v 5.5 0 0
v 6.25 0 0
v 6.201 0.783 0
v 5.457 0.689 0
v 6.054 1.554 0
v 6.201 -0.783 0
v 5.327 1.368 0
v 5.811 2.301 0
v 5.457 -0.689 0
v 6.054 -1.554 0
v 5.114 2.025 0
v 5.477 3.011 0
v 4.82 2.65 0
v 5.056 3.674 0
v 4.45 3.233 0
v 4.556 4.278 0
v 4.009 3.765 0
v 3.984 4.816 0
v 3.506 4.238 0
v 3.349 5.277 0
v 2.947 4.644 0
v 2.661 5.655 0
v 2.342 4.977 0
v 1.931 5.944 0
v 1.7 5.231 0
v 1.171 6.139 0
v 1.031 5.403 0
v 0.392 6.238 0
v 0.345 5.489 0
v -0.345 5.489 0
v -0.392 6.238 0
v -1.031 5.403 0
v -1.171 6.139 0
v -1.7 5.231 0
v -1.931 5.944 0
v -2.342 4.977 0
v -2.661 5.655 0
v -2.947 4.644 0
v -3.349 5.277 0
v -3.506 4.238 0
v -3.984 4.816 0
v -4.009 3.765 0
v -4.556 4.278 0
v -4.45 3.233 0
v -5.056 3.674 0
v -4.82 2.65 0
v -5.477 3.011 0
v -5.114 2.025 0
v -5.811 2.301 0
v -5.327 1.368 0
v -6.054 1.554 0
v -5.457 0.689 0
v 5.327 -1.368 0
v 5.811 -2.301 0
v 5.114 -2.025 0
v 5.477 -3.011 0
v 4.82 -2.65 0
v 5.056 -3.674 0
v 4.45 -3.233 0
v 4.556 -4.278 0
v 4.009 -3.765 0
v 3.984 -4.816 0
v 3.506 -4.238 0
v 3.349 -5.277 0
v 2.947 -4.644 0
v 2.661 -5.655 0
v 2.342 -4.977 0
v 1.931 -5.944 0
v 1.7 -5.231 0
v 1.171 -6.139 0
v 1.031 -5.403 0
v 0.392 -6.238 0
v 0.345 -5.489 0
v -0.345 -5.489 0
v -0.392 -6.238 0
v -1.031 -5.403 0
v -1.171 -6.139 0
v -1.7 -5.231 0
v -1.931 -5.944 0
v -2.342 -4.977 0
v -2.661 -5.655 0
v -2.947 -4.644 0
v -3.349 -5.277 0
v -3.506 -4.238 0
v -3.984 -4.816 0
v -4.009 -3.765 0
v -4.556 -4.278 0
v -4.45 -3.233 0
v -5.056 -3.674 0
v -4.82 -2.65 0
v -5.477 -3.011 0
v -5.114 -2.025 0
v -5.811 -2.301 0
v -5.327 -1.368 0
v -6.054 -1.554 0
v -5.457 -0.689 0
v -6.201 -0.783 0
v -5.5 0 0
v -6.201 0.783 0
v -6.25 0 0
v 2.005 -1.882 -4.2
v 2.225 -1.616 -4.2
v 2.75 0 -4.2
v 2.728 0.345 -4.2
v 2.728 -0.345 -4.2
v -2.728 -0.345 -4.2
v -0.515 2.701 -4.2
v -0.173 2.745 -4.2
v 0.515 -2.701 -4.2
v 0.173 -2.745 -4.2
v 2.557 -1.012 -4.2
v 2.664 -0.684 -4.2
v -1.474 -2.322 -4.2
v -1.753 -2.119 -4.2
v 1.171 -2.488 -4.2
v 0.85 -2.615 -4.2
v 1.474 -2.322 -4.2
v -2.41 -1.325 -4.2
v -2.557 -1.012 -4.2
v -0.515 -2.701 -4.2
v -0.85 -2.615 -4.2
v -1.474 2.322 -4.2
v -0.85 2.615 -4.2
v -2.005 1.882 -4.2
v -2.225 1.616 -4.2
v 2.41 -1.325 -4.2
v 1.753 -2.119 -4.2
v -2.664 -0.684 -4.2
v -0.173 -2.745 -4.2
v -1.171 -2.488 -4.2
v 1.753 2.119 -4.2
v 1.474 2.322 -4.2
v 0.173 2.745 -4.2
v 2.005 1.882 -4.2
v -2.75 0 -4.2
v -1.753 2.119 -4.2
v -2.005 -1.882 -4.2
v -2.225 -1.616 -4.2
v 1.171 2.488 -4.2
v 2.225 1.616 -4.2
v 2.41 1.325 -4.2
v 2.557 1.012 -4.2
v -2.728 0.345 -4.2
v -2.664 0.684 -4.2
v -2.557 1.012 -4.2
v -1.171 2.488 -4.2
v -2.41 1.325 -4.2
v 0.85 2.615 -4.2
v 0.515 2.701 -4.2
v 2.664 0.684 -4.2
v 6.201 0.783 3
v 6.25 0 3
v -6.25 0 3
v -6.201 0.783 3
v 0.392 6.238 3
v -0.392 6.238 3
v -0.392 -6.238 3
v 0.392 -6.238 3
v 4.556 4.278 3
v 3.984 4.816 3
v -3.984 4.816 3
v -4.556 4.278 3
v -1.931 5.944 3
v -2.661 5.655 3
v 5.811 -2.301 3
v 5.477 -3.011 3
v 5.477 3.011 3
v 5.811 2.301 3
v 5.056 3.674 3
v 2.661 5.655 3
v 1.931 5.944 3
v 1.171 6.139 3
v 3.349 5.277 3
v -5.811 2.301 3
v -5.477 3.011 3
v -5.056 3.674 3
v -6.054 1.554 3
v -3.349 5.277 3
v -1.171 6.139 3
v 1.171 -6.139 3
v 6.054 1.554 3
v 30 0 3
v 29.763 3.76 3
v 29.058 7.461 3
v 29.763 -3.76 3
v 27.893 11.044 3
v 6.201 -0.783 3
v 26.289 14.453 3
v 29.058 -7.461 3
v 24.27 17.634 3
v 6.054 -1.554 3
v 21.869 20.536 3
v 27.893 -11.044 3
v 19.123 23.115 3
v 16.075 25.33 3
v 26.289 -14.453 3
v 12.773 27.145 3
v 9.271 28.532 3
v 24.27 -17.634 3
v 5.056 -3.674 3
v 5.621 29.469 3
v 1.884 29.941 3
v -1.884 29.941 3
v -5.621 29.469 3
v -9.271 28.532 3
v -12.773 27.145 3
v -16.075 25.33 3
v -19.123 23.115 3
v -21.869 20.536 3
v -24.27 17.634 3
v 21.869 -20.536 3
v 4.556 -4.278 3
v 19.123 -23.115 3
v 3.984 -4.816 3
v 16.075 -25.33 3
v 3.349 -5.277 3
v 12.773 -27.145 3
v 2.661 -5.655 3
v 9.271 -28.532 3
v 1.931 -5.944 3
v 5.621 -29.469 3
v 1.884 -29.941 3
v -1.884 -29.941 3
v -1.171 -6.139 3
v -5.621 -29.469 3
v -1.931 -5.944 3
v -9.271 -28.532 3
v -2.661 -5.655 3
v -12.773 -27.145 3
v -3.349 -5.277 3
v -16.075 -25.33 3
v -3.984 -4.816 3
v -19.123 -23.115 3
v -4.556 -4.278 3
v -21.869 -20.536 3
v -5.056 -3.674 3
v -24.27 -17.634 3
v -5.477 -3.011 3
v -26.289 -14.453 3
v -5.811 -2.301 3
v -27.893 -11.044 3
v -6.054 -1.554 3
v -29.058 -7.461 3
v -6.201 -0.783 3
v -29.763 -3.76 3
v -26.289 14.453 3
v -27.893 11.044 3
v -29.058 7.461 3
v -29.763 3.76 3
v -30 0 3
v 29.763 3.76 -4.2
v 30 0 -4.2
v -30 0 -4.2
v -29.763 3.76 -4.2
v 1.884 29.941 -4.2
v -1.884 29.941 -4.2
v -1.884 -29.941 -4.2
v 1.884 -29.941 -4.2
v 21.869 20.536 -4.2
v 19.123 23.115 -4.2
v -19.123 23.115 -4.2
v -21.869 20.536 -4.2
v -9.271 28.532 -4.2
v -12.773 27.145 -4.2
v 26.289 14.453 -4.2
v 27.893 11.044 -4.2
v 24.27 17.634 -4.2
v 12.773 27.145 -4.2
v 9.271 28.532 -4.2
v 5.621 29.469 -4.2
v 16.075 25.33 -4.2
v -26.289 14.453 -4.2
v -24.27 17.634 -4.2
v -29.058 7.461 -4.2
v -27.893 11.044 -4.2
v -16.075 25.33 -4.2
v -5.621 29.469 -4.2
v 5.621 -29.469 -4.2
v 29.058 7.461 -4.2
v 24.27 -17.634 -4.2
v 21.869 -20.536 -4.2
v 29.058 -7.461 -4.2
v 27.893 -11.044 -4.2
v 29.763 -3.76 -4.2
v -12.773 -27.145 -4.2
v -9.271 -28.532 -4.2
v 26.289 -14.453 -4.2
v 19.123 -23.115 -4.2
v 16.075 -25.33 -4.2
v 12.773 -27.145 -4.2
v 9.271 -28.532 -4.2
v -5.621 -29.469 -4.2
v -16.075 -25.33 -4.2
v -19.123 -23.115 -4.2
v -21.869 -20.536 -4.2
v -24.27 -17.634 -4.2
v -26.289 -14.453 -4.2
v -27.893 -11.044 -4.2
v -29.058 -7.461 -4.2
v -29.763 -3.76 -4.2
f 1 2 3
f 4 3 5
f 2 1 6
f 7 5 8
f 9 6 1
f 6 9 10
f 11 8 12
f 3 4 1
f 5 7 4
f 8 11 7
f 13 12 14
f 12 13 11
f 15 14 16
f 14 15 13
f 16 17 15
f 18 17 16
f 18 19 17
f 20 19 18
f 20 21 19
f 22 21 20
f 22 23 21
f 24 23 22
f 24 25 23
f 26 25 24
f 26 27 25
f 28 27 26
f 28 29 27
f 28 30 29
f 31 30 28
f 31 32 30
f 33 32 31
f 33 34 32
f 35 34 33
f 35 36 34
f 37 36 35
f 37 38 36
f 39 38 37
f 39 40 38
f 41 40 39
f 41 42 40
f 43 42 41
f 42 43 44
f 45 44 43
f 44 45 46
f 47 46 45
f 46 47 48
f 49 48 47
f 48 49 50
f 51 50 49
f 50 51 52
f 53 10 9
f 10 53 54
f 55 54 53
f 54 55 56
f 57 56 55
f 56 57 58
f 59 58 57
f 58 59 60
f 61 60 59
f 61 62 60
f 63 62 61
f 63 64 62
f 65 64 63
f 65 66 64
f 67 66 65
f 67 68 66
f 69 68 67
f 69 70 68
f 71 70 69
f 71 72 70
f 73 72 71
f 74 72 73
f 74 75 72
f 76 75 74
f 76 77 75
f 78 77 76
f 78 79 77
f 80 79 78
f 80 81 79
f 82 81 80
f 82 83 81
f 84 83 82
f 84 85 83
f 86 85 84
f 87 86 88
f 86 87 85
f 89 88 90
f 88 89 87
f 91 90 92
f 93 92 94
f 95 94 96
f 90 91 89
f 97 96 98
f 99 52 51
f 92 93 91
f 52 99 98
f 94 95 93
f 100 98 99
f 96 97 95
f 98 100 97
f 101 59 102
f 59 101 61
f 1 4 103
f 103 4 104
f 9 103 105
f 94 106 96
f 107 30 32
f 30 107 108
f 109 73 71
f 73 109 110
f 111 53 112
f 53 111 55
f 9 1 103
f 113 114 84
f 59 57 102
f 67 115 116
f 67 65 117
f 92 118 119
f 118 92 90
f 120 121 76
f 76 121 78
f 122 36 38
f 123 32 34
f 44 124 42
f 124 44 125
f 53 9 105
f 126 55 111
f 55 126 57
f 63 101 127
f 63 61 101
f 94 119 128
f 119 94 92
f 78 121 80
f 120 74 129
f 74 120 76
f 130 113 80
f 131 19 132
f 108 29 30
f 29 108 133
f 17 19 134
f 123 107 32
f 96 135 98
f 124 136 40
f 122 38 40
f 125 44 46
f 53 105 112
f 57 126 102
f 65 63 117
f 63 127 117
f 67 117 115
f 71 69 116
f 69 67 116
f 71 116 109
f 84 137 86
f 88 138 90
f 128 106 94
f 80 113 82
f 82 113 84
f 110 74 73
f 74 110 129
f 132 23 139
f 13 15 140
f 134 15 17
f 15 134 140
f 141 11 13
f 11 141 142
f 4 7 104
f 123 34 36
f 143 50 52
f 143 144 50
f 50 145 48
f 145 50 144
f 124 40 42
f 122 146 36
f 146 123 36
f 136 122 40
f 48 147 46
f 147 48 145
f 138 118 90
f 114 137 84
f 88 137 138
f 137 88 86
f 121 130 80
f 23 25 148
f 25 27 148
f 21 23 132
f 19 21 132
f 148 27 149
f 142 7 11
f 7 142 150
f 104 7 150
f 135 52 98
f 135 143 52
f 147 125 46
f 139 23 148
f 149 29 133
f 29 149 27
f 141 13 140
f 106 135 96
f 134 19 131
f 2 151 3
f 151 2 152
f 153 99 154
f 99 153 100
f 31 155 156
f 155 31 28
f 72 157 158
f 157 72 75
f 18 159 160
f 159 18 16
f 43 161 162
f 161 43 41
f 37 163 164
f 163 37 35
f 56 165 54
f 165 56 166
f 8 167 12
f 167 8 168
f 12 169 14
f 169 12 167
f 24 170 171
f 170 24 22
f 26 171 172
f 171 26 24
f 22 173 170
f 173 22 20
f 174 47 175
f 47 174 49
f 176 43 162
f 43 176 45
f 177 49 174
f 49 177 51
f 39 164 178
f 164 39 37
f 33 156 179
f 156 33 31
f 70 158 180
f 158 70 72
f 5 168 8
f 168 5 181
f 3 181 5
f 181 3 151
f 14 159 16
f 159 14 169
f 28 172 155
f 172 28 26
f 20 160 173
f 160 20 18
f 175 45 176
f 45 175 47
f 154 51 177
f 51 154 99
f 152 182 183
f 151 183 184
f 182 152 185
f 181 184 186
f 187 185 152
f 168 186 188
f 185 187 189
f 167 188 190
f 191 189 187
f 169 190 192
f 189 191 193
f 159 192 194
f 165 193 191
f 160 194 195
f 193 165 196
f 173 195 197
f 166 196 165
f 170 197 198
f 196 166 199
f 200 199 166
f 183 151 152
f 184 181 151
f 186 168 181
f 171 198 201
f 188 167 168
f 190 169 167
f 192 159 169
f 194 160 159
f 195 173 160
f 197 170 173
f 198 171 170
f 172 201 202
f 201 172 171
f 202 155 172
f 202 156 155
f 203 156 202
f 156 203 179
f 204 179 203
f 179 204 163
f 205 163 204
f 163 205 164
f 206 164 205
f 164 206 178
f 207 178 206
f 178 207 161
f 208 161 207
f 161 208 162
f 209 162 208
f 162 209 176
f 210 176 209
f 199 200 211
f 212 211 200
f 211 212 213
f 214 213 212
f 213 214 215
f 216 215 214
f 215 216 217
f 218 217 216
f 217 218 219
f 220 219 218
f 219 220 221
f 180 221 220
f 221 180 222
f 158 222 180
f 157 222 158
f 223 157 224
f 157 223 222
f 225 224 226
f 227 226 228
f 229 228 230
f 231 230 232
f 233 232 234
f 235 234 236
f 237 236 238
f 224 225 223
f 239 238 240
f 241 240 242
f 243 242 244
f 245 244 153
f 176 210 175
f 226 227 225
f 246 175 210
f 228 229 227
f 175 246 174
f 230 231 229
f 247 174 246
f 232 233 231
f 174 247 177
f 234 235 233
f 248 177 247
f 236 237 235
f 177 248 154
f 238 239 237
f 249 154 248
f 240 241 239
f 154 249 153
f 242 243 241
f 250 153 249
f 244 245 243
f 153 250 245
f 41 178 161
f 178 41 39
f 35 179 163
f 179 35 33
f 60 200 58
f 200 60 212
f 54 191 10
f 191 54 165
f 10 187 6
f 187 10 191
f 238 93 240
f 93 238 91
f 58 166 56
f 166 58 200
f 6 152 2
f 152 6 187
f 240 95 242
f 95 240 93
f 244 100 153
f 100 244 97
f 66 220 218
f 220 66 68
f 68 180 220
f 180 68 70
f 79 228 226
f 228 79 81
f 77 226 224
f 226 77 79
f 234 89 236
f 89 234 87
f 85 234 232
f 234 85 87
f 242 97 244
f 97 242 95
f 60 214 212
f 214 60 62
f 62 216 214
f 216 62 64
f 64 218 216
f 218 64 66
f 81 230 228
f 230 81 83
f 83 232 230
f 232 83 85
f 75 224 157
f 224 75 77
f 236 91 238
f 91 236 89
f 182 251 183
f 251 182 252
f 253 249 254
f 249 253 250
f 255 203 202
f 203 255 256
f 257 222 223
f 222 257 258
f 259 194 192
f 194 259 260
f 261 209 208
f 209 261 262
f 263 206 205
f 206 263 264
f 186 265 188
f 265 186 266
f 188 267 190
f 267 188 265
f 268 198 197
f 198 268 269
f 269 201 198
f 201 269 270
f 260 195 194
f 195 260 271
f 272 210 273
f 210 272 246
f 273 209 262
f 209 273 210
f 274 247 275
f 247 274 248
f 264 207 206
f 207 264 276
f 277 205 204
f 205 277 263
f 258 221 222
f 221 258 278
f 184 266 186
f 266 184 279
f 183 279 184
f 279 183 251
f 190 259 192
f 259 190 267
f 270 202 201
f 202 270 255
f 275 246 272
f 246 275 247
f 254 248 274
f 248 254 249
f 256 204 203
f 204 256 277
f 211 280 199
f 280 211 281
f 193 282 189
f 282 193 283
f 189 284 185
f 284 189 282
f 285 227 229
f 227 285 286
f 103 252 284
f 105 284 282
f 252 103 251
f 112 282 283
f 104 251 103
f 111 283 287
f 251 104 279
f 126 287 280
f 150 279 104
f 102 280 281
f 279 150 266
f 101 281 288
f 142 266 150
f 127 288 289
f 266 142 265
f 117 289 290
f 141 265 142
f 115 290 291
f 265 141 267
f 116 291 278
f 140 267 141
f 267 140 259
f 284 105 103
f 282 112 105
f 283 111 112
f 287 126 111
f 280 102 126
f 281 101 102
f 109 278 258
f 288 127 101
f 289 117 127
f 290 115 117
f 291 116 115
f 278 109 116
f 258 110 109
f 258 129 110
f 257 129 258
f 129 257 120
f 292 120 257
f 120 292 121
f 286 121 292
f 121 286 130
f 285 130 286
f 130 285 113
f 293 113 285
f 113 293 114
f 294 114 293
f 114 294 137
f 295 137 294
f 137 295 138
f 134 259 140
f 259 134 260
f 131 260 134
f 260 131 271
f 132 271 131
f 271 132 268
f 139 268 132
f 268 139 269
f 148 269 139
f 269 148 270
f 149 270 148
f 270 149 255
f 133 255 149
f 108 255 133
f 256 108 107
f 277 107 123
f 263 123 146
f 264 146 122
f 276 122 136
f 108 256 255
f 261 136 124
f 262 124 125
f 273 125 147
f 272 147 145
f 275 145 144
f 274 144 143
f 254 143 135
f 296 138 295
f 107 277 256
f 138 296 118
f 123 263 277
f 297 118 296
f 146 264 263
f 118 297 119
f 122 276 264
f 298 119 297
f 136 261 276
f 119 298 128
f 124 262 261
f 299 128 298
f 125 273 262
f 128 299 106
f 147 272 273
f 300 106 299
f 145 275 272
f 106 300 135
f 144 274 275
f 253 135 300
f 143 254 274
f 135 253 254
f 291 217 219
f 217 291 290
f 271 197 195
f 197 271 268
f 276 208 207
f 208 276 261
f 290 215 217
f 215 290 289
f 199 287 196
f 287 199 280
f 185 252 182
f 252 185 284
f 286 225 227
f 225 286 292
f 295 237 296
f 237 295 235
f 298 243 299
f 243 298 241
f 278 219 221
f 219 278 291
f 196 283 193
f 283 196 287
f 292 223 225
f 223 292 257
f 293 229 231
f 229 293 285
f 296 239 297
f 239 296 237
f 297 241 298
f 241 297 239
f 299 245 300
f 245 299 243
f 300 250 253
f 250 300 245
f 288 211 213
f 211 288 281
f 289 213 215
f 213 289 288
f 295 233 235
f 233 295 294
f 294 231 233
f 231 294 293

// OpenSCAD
$fn = 50;


difference() {
	union() {
		translate(v = [0, 0, -4.2000000000]) {
			cylinder(h = 7.2000000000, r = 30.0000000000);
		}
	}
	union() {
		translate(v = [0, 0, 0]) {
			rotate(a = [0, 0, 0]) {
				difference() {
					union() {
						translate(v = [0, 0, -7.2000000000]) {
							cylinder(h = 7.2000000000, r = 2.2500000000);
						}
						translate(v = [0, 0, -4.2000000000]) {
							cylinder(h = 4.2000000000, r1 = 2.7500000000, r2 = 5.5000000000);
						}
						translate(v = [0, 0, -7.2000000000]) {
							cylinder(h = 7.2000000000, r = 2.7500000000);
						}
						translate(v = [0, 0, -7.2000000000]) {
							cylinder(h = 7.2000000000, r = 2.2500000000);
						}
					}
					union();
				}
			}
		}
		#cylinder(h = 3, r = 6.2500000000);
	}
}
